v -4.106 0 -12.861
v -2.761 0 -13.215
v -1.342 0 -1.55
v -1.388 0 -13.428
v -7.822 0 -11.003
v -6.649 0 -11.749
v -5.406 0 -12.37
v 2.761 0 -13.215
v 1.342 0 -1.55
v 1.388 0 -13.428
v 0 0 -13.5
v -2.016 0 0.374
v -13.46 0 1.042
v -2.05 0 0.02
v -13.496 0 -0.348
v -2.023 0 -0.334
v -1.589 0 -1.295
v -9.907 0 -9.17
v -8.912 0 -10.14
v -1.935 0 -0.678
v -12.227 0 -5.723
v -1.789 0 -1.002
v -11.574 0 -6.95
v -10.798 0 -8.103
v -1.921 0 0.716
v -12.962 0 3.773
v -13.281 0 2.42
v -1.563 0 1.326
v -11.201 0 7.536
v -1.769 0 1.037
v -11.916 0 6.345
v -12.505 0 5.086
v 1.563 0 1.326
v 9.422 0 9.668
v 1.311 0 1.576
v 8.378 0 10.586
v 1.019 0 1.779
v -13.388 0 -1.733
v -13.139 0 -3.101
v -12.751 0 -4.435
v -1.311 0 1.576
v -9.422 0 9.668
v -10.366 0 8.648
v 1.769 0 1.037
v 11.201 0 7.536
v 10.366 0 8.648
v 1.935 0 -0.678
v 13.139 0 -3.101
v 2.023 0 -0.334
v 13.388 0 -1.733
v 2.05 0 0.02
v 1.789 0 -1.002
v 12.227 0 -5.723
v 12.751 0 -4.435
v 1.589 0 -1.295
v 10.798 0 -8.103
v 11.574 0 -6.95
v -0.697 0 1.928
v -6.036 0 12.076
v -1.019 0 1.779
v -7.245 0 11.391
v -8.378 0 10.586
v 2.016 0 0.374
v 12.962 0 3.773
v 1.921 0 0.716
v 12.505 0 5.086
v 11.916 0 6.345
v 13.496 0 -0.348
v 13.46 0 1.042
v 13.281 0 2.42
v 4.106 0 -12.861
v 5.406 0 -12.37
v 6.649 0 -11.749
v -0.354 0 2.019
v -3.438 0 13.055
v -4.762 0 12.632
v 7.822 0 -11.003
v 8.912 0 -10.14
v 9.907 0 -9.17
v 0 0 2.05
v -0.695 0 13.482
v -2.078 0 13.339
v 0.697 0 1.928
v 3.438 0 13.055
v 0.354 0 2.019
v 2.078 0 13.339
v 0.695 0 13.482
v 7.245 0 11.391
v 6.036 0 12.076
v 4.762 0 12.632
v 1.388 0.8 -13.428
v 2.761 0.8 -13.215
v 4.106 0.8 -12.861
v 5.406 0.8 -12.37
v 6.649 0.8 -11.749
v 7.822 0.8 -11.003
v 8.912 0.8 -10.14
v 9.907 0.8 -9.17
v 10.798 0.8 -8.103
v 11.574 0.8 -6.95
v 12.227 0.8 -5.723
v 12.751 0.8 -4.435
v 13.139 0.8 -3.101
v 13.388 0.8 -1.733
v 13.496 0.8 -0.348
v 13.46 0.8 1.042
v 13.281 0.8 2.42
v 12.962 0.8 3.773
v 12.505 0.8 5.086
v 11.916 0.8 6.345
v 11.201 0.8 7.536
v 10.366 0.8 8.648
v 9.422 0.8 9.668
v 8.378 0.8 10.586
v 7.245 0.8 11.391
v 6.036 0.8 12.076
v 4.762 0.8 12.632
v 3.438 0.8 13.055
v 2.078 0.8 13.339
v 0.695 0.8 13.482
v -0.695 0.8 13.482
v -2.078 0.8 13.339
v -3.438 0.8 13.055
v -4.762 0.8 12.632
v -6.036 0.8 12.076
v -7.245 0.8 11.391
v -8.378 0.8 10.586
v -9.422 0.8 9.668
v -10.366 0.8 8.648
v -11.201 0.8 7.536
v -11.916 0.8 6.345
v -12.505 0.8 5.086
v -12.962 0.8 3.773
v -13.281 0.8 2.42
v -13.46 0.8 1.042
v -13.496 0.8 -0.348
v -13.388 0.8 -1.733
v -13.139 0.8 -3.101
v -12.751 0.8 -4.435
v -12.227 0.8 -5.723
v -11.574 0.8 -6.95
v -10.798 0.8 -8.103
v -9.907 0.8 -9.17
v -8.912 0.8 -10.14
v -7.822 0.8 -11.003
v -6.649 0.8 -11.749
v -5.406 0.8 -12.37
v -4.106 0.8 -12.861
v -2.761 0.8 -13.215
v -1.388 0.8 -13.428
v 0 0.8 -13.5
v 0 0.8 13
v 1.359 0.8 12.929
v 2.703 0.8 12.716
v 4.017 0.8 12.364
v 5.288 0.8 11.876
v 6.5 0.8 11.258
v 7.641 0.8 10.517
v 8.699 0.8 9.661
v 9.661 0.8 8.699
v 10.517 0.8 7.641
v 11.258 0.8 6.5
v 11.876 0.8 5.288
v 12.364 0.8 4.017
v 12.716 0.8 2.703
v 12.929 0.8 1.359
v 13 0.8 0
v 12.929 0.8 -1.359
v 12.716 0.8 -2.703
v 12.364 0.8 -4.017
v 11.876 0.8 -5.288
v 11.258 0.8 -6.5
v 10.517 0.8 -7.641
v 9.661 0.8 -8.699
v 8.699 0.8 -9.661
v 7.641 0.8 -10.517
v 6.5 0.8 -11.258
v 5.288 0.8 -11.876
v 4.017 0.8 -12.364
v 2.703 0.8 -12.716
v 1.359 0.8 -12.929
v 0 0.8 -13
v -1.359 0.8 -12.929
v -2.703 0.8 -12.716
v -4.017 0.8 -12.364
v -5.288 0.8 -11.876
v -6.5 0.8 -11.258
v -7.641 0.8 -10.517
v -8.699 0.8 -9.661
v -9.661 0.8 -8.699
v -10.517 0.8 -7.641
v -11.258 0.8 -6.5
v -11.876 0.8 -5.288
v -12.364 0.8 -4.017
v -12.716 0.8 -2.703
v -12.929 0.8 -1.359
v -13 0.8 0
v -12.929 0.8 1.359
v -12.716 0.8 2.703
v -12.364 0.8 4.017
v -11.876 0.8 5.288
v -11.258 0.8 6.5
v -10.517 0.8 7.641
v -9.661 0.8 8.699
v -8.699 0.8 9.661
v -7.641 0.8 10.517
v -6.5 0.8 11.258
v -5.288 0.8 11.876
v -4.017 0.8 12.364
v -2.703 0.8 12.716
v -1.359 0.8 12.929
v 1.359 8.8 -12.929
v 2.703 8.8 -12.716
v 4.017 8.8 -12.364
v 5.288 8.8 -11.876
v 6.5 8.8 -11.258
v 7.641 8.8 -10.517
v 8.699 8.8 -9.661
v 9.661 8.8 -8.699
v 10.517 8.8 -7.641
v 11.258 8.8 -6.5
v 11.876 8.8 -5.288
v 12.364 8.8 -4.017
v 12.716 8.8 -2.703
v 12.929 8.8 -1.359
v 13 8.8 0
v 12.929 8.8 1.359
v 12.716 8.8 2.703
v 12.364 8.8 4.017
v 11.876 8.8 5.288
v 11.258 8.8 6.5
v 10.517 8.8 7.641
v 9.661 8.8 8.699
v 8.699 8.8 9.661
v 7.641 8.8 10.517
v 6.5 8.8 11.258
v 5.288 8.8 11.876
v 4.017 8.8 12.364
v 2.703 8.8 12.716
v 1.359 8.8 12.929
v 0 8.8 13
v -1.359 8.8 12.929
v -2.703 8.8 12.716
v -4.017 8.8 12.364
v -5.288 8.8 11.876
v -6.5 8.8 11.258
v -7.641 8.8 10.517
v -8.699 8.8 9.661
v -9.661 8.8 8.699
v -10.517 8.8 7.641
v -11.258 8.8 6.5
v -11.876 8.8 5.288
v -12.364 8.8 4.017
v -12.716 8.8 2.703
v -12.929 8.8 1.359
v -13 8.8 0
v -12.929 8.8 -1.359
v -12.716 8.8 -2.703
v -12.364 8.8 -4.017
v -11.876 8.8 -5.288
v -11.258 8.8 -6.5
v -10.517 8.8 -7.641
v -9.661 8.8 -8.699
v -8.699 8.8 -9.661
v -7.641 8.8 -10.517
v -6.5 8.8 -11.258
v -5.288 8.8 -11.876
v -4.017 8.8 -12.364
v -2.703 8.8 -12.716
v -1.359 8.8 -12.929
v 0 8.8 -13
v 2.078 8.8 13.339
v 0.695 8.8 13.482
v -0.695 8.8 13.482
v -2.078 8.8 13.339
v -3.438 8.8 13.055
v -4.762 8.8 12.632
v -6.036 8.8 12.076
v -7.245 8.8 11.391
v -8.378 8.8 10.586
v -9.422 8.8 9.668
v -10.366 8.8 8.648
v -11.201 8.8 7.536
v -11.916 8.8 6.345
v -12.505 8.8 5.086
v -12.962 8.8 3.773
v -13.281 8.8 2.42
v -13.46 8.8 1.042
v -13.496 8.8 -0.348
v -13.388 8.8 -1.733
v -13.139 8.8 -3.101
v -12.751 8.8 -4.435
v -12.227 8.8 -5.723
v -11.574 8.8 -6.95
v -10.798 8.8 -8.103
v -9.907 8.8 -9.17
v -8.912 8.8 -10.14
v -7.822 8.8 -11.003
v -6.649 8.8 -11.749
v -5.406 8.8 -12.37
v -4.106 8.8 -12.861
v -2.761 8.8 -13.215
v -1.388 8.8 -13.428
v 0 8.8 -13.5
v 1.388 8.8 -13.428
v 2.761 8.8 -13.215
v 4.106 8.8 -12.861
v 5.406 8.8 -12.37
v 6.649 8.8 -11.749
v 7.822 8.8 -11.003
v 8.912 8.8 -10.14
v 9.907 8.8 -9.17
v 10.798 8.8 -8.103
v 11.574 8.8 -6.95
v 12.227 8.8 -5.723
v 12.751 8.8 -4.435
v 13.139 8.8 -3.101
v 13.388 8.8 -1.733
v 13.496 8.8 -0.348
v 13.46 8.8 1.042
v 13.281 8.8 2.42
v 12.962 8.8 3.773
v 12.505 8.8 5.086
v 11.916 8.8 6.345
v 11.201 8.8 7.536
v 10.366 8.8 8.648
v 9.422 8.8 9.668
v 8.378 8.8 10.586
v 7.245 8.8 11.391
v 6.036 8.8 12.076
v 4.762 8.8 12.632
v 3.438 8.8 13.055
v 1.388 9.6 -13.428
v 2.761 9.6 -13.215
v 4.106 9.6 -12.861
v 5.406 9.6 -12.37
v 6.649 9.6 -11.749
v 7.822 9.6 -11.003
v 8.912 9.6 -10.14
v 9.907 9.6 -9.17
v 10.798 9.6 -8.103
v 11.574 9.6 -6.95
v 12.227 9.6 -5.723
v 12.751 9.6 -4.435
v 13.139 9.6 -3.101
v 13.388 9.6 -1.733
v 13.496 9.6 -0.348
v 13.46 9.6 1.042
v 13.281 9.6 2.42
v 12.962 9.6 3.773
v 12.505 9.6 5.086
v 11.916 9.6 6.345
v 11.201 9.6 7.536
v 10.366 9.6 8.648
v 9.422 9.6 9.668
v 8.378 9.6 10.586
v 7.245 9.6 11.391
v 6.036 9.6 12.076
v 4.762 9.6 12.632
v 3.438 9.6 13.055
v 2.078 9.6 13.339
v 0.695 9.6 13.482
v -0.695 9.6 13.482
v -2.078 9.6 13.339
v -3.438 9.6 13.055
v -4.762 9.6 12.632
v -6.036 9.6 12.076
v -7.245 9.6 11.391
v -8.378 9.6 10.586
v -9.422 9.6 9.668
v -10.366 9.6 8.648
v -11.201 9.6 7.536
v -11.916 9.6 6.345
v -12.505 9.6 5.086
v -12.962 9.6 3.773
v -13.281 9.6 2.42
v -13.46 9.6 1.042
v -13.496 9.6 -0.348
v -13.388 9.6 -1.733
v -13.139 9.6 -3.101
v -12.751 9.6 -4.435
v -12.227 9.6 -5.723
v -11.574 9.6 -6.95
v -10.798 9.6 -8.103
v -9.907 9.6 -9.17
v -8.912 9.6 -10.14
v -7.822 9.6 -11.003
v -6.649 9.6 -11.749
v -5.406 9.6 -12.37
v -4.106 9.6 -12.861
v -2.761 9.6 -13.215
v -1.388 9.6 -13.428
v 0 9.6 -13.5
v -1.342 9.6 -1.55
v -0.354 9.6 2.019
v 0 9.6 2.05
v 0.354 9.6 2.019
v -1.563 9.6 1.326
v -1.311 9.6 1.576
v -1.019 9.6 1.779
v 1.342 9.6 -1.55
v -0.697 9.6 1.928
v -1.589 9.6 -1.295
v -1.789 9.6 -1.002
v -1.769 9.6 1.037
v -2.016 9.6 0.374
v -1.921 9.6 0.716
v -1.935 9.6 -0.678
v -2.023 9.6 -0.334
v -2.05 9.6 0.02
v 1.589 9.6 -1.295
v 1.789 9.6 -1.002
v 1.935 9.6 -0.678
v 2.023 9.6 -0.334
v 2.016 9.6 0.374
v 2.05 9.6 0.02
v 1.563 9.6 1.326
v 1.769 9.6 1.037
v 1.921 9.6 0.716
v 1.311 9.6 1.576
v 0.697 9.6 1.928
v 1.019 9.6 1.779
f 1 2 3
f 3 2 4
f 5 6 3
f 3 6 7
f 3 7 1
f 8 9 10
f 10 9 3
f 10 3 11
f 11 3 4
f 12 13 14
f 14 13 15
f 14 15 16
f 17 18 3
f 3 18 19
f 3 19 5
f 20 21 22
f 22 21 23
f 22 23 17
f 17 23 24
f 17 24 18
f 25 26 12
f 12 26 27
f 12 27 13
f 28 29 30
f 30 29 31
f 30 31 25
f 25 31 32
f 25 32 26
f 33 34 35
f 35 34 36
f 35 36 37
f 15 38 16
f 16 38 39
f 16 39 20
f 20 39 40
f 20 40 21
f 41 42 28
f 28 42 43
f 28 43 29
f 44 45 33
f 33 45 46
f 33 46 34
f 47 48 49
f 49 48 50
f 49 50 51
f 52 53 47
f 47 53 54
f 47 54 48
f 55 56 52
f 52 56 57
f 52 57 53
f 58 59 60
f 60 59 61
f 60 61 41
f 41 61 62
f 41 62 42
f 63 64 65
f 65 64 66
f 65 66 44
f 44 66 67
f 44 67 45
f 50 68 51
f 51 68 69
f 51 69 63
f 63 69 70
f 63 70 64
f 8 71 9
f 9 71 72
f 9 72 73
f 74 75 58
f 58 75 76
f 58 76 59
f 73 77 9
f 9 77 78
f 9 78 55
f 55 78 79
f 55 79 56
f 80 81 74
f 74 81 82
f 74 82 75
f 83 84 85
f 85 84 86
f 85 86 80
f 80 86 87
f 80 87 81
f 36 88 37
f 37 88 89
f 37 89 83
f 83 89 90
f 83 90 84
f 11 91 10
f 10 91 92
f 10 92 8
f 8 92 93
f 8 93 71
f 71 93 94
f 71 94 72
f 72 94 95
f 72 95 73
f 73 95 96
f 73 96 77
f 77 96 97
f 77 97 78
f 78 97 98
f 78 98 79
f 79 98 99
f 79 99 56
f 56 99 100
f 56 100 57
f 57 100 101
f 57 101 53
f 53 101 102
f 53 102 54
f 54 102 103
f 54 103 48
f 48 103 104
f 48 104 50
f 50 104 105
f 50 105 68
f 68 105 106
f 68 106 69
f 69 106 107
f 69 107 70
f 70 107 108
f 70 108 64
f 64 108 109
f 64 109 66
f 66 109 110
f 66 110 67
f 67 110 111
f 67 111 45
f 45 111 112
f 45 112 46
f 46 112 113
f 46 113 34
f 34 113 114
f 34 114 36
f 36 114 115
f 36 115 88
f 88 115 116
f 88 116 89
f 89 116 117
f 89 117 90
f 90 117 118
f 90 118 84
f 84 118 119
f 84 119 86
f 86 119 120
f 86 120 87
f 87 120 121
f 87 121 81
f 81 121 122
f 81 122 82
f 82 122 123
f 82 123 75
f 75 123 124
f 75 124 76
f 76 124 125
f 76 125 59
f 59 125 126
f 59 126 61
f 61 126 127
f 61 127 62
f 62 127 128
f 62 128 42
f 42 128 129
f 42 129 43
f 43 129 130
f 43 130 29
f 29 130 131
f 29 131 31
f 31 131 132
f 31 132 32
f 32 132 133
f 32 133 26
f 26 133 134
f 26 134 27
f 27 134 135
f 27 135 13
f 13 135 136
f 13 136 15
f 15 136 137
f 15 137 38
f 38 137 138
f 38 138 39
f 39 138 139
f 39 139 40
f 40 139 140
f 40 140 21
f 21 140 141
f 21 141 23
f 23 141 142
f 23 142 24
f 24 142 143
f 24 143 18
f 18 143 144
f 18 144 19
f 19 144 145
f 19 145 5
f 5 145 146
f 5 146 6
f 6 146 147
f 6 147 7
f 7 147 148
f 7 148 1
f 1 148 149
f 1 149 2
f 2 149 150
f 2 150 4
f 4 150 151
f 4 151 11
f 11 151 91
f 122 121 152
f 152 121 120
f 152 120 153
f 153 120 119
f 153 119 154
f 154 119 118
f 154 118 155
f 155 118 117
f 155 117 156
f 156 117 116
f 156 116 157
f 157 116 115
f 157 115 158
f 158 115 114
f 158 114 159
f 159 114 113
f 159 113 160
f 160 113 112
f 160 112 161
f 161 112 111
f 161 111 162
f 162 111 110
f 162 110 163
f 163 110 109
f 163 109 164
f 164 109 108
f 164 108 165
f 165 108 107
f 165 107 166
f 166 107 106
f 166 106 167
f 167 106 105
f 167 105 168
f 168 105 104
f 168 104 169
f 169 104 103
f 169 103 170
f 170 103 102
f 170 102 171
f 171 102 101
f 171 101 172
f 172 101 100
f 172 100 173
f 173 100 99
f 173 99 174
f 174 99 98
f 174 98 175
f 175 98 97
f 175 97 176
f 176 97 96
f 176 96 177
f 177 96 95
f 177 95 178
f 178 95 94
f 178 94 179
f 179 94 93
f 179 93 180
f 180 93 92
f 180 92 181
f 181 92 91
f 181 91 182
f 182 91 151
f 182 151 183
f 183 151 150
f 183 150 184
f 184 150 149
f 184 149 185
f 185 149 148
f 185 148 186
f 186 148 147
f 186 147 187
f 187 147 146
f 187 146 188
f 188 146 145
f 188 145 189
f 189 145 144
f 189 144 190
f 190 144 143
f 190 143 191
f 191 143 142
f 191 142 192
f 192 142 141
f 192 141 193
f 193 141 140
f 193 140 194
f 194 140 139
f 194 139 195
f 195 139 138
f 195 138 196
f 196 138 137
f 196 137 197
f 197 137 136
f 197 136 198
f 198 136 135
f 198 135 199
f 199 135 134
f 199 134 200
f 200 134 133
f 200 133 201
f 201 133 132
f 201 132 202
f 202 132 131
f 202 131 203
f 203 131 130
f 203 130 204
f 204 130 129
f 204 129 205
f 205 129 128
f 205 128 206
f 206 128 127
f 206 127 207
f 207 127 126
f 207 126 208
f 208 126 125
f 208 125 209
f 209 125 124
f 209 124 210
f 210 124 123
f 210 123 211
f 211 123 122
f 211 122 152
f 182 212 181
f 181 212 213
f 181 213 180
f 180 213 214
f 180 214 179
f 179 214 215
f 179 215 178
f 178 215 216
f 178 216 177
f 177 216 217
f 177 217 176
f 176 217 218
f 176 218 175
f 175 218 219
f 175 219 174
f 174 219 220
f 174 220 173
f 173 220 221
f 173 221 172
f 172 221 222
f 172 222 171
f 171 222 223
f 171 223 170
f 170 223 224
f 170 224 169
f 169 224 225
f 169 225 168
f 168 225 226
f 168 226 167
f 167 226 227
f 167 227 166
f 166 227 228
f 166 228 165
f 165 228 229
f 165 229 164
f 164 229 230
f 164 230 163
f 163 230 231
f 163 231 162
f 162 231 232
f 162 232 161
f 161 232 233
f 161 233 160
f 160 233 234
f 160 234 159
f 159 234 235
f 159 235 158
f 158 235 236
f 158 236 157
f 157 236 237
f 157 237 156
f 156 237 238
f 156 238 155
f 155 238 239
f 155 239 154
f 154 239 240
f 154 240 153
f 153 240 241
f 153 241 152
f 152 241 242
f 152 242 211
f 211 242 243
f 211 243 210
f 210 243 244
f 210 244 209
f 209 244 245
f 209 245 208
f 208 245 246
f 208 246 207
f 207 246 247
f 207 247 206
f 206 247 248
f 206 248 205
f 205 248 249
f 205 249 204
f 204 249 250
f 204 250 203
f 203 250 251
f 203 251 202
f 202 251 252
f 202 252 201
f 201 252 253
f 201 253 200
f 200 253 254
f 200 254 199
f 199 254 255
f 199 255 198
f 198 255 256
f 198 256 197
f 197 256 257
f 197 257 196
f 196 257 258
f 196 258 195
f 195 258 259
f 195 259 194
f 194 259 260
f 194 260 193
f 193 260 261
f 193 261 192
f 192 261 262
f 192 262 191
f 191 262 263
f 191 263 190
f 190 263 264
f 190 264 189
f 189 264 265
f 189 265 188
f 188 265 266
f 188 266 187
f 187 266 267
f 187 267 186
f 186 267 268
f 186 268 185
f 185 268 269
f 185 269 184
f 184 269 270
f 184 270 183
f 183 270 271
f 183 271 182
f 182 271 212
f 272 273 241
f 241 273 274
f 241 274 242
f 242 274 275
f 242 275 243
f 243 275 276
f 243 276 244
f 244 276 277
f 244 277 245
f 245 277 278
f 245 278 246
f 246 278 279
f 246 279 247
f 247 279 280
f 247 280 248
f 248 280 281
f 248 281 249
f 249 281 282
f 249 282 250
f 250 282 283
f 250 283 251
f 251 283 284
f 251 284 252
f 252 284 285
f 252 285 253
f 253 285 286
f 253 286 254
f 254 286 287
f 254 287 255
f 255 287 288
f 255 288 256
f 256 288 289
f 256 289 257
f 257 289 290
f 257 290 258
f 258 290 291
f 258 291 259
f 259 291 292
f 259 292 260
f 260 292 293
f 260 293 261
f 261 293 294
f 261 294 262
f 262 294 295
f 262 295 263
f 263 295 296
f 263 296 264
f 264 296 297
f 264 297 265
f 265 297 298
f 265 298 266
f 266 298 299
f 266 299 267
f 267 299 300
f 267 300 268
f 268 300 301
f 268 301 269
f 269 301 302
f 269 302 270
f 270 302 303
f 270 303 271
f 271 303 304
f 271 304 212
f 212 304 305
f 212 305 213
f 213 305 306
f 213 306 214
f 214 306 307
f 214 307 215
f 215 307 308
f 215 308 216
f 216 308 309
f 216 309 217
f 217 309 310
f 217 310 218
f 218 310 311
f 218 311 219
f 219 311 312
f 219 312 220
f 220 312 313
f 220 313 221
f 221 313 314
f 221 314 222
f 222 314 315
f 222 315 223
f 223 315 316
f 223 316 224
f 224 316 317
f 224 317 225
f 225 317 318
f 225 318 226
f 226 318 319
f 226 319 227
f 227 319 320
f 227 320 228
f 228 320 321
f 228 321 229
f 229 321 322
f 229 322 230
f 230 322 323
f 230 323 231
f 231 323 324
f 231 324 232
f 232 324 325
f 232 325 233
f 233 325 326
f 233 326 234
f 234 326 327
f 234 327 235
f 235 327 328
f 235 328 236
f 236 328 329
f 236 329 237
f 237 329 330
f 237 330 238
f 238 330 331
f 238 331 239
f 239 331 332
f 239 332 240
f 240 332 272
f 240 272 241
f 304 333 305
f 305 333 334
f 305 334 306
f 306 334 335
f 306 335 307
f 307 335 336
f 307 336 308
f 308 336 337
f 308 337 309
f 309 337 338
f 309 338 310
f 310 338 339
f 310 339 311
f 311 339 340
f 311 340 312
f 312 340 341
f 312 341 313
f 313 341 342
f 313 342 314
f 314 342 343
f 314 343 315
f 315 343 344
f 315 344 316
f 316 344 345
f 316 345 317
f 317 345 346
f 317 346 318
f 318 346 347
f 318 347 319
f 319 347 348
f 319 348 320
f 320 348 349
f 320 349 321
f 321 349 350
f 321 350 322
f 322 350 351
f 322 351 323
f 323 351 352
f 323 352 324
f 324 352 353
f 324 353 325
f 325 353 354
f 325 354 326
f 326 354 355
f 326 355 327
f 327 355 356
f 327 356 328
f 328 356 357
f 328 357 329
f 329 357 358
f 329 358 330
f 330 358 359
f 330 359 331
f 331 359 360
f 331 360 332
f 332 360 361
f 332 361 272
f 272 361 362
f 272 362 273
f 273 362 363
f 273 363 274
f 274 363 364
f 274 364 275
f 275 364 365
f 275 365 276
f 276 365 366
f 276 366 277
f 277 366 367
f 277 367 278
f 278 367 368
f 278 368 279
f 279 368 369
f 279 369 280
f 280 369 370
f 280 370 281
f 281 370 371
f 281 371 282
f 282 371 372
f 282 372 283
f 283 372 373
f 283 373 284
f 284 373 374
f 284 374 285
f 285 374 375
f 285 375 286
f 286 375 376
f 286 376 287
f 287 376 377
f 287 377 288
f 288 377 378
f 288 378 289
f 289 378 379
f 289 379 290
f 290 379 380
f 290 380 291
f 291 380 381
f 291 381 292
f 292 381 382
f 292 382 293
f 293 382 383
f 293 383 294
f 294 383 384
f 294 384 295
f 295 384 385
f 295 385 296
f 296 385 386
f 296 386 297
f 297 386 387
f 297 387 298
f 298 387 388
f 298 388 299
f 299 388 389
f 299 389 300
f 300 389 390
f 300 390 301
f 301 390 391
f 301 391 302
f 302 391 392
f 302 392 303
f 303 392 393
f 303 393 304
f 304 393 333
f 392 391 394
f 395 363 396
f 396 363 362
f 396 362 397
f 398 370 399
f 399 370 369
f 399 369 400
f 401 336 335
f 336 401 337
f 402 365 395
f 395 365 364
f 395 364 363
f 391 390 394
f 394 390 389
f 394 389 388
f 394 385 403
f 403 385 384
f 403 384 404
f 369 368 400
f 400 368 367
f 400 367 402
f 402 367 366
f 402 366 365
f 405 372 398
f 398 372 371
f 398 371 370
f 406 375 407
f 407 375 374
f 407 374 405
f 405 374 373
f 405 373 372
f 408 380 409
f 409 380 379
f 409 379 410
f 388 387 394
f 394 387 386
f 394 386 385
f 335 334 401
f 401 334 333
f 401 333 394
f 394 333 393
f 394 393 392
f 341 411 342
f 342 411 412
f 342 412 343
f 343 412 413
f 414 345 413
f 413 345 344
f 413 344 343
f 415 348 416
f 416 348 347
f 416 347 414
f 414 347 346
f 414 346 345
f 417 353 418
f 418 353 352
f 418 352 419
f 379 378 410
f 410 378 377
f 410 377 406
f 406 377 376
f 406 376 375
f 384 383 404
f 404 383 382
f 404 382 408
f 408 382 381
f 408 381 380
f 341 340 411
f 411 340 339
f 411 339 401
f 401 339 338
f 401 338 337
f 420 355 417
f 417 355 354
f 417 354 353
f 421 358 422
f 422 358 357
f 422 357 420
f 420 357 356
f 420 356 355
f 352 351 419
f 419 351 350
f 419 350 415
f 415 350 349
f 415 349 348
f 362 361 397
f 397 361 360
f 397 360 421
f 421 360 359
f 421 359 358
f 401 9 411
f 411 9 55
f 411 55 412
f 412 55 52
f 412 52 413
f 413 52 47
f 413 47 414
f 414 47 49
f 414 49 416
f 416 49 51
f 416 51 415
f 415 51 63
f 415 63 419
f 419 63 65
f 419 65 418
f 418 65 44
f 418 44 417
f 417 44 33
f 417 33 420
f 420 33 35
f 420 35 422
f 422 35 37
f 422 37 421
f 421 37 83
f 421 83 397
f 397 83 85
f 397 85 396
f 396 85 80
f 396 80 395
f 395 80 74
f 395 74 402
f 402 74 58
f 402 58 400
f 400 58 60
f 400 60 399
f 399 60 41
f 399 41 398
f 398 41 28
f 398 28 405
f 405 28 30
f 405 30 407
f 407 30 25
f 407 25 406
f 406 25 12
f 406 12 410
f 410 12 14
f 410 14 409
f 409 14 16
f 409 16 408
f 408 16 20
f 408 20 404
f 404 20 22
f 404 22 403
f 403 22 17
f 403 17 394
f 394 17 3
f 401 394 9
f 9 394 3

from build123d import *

# Parameters (mm, degrees)
BOSS_EXTRUDE1_START     = -9.6
BOSS_EXTRUDE1_DEPTH     = 9.6
CUT_EXTRUDE1_DEPTH      = 22.369604582
CUT_EXTRUDE1_DEPTH_BACK = 22.369604582


with BuildPart() as part:
    # Sketch1 → Revolve1 (revolve)
    with BuildSketch(Plane.XY, mode=Mode.PRIVATE) as revolve1_sk:
        Polygon((2, 0), (13.5, 0), (13.5, 0.8), (13, 0.8), (13, 8.8), (13.5, 8.8), (13.5, 9.6), (2, 9.6), align=None)
    revolve(revolve1_sk.sketch.rotate(Axis((0, 0, 0), (0, 1, 0)), 90), axis=Axis((0, 0, 0), (0, 1, 0)))

    # Sketch2 → Boss-Extrude1 (add)
    with BuildSketch(Plane(origin=(0, 9.6, 0), x_dir=(1, 0, 0), z_dir=(0, 1, 0)).offset(BOSS_EXTRUDE1_START)):
        with BuildLine():
            Line((-1.322875656, 1.5), (1.322875656, 1.5))
            ThreePointArc((1.322875656, 1.5), (0, 2), (-1.322875656, 1.5))
        make_face()
    extrude(amount=BOSS_EXTRUDE1_DEPTH)

    # Sketch4 → Cut-Extrude1 (cut, two sides: drawn at the far end of the back side and taken through both)
    with BuildSketch(Plane.XZ.offset(-CUT_EXTRUDE1_DEPTH_BACK)):
        with BuildLine():
            Line((-1.341640786, -1.55), (1.341640786, -1.55))
            ThreePointArc((1.341640786, -1.55), (0, 2.05), (-1.341640786, -1.55))
        make_face()
    extrude(amount=CUT_EXTRUDE1_DEPTH + CUT_EXTRUDE1_DEPTH_BACK, mode=Mode.SUBTRACT)


solid = part.part
